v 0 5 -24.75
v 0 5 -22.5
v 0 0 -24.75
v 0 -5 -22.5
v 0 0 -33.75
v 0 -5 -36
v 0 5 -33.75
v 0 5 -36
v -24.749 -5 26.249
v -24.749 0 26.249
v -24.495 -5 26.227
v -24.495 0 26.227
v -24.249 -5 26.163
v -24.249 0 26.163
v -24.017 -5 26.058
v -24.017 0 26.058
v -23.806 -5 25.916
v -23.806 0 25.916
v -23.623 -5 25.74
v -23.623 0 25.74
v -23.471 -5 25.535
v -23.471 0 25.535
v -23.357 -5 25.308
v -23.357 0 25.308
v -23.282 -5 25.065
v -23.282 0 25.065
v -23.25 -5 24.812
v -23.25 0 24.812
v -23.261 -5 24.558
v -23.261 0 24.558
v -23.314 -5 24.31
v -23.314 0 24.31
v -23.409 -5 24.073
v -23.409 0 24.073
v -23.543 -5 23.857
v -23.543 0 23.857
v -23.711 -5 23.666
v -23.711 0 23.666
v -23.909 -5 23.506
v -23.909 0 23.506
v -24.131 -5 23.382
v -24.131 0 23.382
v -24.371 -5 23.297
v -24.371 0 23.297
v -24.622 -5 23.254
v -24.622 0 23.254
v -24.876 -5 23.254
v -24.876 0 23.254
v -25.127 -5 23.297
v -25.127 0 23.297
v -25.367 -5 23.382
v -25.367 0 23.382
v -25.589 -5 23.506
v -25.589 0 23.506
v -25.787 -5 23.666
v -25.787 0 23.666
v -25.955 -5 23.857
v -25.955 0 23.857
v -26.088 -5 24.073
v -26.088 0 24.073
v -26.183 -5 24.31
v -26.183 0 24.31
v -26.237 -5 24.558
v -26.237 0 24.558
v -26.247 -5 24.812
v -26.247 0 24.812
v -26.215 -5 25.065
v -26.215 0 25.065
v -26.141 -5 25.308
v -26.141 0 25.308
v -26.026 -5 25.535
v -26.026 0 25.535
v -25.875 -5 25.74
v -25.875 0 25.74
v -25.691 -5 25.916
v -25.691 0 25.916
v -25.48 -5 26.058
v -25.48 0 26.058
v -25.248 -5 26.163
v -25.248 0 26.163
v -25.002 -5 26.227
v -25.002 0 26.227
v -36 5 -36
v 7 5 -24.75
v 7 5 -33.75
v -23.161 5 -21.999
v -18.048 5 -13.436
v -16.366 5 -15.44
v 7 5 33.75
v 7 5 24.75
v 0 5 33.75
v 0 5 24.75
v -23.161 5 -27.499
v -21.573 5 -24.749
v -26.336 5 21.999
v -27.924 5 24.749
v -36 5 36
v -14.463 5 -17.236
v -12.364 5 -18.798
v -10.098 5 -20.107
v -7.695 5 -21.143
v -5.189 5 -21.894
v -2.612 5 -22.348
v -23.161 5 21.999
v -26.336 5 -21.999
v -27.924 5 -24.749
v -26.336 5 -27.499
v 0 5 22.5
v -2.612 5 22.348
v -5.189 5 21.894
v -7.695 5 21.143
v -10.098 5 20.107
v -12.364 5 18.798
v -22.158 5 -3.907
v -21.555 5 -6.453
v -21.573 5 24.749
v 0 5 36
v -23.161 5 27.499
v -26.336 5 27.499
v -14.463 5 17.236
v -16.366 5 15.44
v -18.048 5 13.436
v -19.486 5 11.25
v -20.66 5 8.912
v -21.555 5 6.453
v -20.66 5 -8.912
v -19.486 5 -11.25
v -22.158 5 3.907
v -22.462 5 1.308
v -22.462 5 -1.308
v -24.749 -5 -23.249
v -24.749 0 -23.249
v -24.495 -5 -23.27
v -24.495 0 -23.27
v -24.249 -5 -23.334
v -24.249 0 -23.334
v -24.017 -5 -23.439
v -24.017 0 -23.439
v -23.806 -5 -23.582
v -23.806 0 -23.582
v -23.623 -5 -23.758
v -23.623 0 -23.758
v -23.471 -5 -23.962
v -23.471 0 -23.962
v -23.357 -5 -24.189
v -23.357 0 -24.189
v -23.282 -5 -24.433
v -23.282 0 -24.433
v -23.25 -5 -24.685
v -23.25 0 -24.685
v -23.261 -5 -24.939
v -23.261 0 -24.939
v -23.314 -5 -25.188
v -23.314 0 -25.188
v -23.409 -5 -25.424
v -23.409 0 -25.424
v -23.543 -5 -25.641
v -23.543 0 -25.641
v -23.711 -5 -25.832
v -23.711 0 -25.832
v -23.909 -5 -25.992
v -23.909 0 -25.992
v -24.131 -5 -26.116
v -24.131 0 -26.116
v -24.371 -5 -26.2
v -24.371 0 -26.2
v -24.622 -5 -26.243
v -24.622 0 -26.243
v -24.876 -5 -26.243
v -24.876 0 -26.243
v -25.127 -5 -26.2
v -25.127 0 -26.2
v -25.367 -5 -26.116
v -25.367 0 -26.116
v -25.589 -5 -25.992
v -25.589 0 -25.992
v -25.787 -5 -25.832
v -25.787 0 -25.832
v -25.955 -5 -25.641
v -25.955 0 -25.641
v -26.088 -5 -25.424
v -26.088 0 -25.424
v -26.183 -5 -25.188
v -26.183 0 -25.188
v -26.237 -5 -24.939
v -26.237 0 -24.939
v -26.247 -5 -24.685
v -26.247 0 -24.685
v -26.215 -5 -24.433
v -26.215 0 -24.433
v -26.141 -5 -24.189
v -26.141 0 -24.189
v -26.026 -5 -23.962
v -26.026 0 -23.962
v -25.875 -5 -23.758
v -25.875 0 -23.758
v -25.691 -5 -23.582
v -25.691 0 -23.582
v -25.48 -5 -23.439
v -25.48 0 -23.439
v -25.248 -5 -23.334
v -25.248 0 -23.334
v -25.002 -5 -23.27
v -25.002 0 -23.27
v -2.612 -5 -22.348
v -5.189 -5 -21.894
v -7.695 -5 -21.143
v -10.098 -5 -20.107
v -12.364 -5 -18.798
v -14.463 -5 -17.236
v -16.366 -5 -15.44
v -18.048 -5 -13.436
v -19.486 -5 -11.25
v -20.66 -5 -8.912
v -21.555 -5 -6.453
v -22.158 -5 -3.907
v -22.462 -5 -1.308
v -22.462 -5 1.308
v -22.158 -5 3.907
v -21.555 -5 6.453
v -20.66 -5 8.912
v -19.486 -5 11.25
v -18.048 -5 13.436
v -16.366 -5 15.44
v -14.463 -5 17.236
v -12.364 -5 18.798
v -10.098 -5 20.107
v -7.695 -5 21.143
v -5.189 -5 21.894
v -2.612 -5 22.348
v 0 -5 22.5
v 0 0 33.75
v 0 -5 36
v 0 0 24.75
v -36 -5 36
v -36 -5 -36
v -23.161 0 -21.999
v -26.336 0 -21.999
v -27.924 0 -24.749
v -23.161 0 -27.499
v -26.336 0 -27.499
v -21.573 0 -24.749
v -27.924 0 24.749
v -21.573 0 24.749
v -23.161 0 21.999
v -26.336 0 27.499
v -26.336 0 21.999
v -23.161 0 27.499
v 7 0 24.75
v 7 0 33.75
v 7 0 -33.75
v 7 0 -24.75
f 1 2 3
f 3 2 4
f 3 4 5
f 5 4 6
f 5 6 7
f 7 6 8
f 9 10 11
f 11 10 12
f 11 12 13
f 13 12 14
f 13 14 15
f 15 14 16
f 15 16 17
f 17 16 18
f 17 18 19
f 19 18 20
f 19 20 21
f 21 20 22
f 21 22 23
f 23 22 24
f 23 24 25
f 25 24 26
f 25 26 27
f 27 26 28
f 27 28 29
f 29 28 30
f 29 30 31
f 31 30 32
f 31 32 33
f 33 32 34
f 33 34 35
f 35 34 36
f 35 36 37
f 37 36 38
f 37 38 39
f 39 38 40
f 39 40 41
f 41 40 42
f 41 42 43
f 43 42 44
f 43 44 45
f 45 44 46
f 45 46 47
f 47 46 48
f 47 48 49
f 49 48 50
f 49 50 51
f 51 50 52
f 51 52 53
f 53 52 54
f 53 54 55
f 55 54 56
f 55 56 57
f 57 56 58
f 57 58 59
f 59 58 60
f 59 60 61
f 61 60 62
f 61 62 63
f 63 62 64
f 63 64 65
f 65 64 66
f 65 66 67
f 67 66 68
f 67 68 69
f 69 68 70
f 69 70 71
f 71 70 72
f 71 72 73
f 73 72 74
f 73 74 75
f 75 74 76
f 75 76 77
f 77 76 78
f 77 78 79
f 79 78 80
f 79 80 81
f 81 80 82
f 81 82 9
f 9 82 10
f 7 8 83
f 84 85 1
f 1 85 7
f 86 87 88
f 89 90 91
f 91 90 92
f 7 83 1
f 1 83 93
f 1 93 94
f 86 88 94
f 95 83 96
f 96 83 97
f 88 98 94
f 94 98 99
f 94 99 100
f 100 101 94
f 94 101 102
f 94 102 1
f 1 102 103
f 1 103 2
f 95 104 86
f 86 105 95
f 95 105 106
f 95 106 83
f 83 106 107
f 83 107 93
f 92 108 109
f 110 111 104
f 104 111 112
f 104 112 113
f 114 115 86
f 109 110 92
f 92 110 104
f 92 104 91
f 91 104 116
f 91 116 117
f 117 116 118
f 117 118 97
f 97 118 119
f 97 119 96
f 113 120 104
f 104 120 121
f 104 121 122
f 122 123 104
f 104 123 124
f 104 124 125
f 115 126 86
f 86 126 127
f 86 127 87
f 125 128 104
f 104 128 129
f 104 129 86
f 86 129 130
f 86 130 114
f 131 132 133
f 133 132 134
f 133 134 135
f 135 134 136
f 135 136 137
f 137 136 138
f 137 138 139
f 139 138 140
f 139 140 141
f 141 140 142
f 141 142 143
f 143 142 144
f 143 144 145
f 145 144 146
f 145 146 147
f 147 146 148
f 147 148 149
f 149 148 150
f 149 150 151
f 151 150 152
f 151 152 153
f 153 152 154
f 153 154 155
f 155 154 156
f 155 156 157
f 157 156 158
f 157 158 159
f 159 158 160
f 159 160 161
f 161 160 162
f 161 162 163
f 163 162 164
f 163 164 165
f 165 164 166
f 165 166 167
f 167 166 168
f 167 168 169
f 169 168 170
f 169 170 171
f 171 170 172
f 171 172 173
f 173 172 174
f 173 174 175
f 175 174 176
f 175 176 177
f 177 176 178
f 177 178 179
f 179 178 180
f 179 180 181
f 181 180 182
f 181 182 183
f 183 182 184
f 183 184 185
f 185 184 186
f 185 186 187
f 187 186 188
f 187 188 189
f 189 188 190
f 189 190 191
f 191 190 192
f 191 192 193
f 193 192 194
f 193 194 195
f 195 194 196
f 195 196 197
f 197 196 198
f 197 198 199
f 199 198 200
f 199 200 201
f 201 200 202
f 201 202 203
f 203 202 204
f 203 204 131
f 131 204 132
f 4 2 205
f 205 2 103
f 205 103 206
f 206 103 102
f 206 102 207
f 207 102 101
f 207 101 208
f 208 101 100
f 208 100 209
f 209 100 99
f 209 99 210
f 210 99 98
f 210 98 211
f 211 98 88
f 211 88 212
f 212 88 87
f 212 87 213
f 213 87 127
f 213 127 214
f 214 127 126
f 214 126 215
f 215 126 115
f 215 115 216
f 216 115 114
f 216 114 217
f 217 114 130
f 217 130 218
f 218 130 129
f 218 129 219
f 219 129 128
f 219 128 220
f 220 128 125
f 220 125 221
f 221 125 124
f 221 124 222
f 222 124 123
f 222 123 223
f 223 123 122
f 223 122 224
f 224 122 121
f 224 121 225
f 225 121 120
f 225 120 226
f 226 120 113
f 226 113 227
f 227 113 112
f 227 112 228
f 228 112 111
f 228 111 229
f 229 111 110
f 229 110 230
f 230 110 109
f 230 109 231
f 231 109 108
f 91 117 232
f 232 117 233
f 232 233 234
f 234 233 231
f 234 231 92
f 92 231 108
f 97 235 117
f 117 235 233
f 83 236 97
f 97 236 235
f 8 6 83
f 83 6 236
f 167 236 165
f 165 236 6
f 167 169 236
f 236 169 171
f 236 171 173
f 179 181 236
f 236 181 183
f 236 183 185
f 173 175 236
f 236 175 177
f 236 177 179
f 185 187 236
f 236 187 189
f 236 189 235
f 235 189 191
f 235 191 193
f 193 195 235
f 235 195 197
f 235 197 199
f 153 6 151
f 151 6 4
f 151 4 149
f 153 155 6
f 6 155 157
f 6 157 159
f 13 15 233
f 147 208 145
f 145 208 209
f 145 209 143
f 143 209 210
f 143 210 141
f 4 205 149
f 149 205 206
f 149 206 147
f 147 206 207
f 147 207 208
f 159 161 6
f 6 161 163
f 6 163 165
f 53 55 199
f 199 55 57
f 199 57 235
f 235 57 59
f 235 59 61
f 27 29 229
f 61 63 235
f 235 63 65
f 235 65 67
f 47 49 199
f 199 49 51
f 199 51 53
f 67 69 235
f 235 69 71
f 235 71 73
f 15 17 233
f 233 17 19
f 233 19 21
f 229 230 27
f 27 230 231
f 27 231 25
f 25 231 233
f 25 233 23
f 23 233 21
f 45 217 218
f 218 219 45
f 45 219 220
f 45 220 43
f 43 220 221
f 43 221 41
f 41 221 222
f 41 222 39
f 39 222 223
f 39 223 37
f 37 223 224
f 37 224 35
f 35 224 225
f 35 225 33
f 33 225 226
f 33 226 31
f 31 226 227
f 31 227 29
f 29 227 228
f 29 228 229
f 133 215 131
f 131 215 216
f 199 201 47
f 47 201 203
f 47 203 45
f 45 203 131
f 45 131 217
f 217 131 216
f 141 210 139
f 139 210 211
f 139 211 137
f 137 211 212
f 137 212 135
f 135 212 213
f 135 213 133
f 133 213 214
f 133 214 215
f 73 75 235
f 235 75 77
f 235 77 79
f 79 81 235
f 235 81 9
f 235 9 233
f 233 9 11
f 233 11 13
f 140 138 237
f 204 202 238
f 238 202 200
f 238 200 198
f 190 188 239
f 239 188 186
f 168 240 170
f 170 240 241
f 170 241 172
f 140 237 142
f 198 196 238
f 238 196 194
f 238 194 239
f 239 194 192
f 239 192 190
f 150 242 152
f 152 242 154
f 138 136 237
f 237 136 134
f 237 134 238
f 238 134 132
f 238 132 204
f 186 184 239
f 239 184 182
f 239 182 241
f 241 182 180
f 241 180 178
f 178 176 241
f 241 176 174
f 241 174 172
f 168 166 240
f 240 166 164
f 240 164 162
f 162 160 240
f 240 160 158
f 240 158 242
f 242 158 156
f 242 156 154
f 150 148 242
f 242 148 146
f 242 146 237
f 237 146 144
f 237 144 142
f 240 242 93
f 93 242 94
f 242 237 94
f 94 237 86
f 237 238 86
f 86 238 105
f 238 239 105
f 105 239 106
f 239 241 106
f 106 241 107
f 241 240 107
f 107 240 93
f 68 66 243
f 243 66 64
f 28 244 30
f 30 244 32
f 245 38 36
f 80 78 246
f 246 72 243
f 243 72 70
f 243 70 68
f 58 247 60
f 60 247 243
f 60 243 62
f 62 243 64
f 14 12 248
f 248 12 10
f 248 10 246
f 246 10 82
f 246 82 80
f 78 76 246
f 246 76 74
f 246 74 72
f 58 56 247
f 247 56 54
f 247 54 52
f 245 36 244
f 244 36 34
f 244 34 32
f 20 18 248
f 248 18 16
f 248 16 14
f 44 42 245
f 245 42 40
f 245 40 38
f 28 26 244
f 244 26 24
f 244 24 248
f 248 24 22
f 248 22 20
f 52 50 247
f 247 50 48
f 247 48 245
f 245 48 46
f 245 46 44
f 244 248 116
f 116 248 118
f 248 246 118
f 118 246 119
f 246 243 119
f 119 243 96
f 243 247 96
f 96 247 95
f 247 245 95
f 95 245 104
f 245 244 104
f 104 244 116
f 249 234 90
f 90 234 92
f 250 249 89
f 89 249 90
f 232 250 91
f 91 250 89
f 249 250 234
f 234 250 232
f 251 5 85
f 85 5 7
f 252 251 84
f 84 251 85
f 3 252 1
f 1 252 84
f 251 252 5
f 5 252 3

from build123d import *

# Parameters (mm, degrees)
BOSS_EXTRUDE1_DEPTH      = 5
BOSS_EXTRUDE1_DEPTH_BACK = 5
SKETCH1_R                = 1.5
CUT_EXTRUDE1_DEPTH       = 5
SKETCH3_W                = 7
SKETCH3_H                = 9
BOSS_EXTRUDE2_DEPTH      = 5


with BuildPart() as part:
    # Sketch1 → Boss-Extrude1 (new, two sides: drawn at the far end of the back side and taken through both)
    with BuildSketch(Plane(origin=(0, 0, 0), x_dir=(1, 0, 0), z_dir=(0, 1, 0)).offset(-BOSS_EXTRUDE1_DEPTH_BACK)):
        with BuildLine():
            Line((0, 22.5), (0, 36))
            Line((0, 36), (-36, 36))
            Line((-36, 36), (-36, -36))
            Line((-36, -36), (0, -36))
            Line((0, -36), (0, -22.5))
            ThreePointArc((0, -22.5), (-22.5, 0), (0, 22.5))
        make_face()
        with Locations((-24.748737342, -24.748737342)):
            Circle(SKETCH1_R, mode=Mode.SUBTRACT)
        with Locations((-24.748737342, 24.748737342)):
            Circle(SKETCH1_R, mode=Mode.SUBTRACT)
    extrude(amount=BOSS_EXTRUDE1_DEPTH + BOSS_EXTRUDE1_DEPTH_BACK)

    # Sketch2 → Cut-Extrude1 (cut)
    with BuildSketch(Plane(origin=(0, 5, 0), x_dir=(1, 0, 0), z_dir=(0, 1, 0))):
        Polygon((-23.161024101, 27.498737342), (-26.336450582, 27.498737342), (-27.924163822, 24.748737342), (-26.336450582, 21.998737342), (-23.161024101, 21.998737342), (-21.573310861, 24.748737342), align=None)
    cut_extrude1 = extrude(amount=-CUT_EXTRUDE1_DEPTH, mode=Mode.SUBTRACT)

    # Mirror1: Cut-Extrude1 across plane
    add(cut_extrude1.mirror(Plane.XY), mode=Mode.SUBTRACT)

    # Sketch3 → Boss-Extrude2 (add)
    with BuildSketch(Plane(origin=(0, 5, 0), x_dir=(1, 0, 0), z_dir=(0, 1, 0))):
        with Locations((3.5, -29.25)):
            Rectangle(SKETCH3_W, SKETCH3_H)
    boss_extrude2 = extrude(amount=-BOSS_EXTRUDE2_DEPTH)

    # Mirror2: Boss-Extrude2 across plane
    add(boss_extrude2.mirror(Plane.XY))


solid = part.part
